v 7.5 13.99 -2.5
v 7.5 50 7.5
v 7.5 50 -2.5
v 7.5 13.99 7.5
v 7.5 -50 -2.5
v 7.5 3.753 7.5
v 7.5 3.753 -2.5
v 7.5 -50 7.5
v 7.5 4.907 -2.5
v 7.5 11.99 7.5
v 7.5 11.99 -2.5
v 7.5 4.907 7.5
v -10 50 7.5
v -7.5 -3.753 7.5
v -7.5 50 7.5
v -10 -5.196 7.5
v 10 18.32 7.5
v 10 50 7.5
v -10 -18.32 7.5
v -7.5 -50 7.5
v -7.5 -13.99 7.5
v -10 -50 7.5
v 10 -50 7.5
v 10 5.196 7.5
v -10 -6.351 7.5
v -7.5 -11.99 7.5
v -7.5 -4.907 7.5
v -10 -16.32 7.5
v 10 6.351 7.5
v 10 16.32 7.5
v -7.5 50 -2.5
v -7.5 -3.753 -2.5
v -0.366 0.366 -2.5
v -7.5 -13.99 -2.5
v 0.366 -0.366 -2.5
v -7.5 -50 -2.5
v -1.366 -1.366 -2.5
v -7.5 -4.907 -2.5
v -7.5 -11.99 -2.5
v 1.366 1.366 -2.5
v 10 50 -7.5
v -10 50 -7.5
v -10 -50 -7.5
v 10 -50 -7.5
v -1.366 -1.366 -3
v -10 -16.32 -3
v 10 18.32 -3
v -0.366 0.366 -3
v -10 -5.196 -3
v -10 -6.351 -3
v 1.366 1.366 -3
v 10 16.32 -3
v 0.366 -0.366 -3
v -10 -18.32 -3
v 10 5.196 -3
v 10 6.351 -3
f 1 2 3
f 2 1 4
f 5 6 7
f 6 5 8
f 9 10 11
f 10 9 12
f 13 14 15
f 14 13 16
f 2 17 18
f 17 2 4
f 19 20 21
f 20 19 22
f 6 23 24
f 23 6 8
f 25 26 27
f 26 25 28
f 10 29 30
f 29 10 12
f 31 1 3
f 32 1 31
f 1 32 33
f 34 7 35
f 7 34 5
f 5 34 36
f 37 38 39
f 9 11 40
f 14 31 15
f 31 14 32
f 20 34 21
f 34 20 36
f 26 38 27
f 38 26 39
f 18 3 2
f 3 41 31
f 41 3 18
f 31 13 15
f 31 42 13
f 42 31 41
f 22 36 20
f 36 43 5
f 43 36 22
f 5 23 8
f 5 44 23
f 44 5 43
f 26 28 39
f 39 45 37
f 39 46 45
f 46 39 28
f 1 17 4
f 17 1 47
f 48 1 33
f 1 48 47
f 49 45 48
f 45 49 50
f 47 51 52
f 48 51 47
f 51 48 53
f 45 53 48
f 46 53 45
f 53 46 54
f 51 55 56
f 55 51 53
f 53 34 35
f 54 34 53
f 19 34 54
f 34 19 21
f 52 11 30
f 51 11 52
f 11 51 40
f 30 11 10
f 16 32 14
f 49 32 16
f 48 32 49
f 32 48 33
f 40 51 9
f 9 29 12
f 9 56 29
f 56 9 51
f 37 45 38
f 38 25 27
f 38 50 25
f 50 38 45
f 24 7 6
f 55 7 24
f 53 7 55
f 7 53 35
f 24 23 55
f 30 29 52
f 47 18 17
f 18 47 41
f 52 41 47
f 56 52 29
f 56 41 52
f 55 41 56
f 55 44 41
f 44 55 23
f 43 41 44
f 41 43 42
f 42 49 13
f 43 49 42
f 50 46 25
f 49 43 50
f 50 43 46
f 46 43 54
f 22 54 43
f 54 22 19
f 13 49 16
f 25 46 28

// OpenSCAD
use<polygear/shortcuts.scad>

D() {
    cube([20,100,15],center=true);
    Tz(2.5)
    cube([15,100,10],center=true);
    Tz(2.5)
    Rz(60)
    cube([50,1,11],center=true);
    Tz(2.5)
    Rz(30)
    cube([50,1,11],center=true);
}
